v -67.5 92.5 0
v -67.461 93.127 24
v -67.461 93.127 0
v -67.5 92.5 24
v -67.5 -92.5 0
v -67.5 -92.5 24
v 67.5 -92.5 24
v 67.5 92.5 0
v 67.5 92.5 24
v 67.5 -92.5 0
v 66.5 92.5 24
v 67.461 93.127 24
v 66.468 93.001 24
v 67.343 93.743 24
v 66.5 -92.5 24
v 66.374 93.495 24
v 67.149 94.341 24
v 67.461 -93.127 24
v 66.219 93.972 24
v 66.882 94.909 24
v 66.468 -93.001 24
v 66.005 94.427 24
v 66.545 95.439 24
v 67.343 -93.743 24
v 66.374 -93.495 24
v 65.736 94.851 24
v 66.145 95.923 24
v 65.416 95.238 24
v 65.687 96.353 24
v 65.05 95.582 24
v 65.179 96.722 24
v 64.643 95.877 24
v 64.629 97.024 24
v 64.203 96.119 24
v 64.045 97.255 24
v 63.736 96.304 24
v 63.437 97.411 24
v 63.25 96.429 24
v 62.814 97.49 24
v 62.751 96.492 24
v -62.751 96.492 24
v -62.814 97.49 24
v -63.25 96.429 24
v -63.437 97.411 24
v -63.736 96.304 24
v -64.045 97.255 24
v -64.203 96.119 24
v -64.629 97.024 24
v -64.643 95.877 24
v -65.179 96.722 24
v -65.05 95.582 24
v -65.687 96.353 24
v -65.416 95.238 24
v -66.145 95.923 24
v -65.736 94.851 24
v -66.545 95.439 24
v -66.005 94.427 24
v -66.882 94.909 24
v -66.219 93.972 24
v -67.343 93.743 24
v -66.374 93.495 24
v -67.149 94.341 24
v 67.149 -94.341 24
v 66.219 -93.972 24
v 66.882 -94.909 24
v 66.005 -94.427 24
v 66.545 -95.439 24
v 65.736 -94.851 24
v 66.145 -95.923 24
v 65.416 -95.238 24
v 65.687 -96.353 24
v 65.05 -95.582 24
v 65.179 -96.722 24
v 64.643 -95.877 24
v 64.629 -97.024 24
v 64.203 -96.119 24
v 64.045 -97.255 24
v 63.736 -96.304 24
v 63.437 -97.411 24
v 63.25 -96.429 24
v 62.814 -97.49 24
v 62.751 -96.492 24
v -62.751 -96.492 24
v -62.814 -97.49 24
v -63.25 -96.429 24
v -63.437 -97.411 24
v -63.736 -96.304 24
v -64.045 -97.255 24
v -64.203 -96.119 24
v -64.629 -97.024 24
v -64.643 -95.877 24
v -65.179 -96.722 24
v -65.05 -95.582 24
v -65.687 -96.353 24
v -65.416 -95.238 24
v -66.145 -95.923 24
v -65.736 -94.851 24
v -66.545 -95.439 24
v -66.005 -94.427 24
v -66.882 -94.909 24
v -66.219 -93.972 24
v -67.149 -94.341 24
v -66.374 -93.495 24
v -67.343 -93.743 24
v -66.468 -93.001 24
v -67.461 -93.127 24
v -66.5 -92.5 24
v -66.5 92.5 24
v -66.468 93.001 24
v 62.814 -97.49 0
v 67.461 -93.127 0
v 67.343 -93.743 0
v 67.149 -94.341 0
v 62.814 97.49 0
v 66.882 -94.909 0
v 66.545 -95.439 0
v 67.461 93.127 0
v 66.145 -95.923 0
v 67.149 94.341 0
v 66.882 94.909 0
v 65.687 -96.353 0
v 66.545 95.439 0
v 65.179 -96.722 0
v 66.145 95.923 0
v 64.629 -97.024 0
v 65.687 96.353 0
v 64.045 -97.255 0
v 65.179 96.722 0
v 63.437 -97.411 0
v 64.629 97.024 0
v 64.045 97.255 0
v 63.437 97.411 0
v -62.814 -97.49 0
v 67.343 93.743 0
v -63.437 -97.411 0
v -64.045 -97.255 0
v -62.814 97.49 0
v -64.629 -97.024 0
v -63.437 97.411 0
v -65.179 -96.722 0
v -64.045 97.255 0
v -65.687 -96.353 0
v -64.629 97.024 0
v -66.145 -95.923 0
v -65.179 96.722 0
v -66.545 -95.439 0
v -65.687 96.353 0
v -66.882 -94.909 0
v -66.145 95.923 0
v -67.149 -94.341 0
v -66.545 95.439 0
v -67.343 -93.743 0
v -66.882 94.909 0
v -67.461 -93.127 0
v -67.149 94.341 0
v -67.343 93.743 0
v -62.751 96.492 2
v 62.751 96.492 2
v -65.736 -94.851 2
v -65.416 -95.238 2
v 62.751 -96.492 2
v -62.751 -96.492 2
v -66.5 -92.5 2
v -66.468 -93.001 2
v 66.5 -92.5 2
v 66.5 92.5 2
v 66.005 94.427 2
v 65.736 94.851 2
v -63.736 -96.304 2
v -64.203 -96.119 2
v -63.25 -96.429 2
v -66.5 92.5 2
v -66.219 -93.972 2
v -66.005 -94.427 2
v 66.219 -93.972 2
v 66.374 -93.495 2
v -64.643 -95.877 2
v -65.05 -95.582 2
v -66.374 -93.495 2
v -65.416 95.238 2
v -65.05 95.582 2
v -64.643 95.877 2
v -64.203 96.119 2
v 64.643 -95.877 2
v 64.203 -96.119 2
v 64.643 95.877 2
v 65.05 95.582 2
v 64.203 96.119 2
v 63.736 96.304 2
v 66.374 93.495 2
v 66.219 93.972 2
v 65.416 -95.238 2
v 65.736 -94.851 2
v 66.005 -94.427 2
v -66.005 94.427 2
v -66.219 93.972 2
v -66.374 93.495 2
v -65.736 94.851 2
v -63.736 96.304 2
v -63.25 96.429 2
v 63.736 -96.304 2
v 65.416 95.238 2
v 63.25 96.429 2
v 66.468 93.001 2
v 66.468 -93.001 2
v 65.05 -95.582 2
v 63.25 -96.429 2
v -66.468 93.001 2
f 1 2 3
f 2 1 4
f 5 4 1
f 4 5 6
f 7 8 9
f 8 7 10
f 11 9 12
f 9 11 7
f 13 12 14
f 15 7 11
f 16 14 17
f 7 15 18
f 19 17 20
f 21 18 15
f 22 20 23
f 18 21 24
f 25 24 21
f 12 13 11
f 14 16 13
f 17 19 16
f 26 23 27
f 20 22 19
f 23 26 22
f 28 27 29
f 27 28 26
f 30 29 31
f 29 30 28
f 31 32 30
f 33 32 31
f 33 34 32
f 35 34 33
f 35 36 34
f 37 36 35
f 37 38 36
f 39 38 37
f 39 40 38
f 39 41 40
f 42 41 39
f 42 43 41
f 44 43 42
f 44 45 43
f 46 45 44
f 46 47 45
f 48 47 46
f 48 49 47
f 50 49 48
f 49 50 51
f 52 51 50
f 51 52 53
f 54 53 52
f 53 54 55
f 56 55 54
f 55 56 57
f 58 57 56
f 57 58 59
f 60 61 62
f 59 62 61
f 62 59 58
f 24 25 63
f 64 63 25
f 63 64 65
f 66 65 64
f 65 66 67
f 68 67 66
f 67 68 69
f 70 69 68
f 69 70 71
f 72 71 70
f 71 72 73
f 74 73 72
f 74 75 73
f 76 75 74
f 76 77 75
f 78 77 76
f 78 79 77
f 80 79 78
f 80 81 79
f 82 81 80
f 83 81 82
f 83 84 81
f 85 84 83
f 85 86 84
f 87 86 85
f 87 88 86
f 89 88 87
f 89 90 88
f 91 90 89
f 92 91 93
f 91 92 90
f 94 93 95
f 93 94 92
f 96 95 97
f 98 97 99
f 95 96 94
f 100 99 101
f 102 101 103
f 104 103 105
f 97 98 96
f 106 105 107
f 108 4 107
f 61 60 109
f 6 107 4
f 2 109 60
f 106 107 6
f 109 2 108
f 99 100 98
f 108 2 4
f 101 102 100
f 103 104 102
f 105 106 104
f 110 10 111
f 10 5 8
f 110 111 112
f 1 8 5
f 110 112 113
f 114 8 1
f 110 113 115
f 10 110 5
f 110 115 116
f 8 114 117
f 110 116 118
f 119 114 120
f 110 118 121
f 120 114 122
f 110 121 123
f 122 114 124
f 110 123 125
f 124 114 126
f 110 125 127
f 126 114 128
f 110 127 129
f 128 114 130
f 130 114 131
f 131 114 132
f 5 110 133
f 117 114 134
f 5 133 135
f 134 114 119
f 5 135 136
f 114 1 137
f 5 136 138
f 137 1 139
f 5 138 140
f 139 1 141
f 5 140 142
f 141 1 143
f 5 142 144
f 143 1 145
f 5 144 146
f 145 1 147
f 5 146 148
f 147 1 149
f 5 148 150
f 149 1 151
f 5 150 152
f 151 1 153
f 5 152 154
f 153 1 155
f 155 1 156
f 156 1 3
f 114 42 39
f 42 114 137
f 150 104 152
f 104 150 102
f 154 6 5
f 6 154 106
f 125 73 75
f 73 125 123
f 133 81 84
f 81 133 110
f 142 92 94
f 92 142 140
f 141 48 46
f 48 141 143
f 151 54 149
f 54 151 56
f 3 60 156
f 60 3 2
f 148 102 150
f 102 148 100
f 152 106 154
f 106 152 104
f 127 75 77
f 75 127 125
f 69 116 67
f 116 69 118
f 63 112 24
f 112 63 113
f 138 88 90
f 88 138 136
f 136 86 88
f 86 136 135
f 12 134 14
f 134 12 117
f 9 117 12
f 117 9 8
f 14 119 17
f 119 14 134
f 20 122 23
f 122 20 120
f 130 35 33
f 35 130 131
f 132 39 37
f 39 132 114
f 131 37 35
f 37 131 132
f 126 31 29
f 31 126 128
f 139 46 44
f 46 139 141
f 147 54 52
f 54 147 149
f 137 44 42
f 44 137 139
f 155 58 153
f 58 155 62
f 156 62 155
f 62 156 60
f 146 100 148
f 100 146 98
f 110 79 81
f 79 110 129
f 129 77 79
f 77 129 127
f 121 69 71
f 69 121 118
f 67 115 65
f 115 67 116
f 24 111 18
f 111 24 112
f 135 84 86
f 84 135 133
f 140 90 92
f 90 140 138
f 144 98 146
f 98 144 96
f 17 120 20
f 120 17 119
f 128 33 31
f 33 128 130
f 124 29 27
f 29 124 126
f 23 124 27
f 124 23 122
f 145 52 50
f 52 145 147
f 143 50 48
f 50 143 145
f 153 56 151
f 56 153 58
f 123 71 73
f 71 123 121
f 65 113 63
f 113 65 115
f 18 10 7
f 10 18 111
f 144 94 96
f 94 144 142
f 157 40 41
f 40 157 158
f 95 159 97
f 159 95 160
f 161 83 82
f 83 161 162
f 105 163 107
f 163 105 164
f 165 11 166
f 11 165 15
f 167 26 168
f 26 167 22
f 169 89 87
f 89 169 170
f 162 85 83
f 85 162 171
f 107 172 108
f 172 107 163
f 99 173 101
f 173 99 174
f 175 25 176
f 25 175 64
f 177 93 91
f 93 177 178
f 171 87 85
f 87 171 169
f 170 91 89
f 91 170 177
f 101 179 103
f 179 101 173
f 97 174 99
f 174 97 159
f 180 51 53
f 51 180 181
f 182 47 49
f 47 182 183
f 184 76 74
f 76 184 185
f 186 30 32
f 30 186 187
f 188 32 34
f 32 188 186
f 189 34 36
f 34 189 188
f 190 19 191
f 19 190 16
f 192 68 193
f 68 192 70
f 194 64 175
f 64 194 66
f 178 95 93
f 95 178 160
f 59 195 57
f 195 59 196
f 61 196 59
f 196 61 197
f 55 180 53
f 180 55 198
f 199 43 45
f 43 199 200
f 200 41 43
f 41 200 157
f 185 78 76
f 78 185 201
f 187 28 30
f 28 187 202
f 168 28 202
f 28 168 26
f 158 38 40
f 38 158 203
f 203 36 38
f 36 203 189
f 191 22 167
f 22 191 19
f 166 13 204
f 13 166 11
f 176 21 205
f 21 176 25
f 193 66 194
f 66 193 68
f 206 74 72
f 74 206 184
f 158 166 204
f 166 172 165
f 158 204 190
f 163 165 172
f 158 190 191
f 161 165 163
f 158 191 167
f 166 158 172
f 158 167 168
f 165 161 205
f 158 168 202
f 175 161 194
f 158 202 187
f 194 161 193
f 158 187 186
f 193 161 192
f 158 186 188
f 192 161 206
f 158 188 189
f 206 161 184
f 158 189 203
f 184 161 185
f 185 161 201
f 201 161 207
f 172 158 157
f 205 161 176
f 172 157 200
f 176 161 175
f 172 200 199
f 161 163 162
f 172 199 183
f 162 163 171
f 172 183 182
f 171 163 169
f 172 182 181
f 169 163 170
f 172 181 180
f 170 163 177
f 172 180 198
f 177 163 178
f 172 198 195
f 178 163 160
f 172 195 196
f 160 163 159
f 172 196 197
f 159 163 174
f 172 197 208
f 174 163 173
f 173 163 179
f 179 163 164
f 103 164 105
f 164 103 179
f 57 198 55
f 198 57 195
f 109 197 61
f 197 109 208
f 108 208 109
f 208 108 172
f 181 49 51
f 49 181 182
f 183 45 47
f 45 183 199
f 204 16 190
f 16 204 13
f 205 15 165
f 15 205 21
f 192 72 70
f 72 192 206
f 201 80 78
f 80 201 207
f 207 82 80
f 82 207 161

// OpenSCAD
$fn = 50;


difference() {
	union() {
		hull() {
			translate(v = [-62.5000000000, 92.5000000000, 0]) {
				cylinder(h = 24, r = 5);
			}
			translate(v = [62.5000000000, 92.5000000000, 0]) {
				cylinder(h = 24, r = 5);
			}
			translate(v = [-62.5000000000, -92.5000000000, 0]) {
				cylinder(h = 24, r = 5);
			}
			translate(v = [62.5000000000, -92.5000000000, 0]) {
				cylinder(h = 24, r = 5);
			}
		}
	}
	union() {
		translate(v = [0, 0, 2]) {
			hull() {
				translate(v = [-62.5000000000, 92.5000000000, 0]) {
					cylinder(h = 22, r = 4);
				}
				translate(v = [62.5000000000, 92.5000000000, 0]) {
					cylinder(h = 22, r = 4);
				}
				translate(v = [-62.5000000000, -92.5000000000, 0]) {
					cylinder(h = 22, r = 4);
				}
				translate(v = [62.5000000000, -92.5000000000, 0]) {
					cylinder(h = 22, r = 4);
				}
			}
		}
	}
}
